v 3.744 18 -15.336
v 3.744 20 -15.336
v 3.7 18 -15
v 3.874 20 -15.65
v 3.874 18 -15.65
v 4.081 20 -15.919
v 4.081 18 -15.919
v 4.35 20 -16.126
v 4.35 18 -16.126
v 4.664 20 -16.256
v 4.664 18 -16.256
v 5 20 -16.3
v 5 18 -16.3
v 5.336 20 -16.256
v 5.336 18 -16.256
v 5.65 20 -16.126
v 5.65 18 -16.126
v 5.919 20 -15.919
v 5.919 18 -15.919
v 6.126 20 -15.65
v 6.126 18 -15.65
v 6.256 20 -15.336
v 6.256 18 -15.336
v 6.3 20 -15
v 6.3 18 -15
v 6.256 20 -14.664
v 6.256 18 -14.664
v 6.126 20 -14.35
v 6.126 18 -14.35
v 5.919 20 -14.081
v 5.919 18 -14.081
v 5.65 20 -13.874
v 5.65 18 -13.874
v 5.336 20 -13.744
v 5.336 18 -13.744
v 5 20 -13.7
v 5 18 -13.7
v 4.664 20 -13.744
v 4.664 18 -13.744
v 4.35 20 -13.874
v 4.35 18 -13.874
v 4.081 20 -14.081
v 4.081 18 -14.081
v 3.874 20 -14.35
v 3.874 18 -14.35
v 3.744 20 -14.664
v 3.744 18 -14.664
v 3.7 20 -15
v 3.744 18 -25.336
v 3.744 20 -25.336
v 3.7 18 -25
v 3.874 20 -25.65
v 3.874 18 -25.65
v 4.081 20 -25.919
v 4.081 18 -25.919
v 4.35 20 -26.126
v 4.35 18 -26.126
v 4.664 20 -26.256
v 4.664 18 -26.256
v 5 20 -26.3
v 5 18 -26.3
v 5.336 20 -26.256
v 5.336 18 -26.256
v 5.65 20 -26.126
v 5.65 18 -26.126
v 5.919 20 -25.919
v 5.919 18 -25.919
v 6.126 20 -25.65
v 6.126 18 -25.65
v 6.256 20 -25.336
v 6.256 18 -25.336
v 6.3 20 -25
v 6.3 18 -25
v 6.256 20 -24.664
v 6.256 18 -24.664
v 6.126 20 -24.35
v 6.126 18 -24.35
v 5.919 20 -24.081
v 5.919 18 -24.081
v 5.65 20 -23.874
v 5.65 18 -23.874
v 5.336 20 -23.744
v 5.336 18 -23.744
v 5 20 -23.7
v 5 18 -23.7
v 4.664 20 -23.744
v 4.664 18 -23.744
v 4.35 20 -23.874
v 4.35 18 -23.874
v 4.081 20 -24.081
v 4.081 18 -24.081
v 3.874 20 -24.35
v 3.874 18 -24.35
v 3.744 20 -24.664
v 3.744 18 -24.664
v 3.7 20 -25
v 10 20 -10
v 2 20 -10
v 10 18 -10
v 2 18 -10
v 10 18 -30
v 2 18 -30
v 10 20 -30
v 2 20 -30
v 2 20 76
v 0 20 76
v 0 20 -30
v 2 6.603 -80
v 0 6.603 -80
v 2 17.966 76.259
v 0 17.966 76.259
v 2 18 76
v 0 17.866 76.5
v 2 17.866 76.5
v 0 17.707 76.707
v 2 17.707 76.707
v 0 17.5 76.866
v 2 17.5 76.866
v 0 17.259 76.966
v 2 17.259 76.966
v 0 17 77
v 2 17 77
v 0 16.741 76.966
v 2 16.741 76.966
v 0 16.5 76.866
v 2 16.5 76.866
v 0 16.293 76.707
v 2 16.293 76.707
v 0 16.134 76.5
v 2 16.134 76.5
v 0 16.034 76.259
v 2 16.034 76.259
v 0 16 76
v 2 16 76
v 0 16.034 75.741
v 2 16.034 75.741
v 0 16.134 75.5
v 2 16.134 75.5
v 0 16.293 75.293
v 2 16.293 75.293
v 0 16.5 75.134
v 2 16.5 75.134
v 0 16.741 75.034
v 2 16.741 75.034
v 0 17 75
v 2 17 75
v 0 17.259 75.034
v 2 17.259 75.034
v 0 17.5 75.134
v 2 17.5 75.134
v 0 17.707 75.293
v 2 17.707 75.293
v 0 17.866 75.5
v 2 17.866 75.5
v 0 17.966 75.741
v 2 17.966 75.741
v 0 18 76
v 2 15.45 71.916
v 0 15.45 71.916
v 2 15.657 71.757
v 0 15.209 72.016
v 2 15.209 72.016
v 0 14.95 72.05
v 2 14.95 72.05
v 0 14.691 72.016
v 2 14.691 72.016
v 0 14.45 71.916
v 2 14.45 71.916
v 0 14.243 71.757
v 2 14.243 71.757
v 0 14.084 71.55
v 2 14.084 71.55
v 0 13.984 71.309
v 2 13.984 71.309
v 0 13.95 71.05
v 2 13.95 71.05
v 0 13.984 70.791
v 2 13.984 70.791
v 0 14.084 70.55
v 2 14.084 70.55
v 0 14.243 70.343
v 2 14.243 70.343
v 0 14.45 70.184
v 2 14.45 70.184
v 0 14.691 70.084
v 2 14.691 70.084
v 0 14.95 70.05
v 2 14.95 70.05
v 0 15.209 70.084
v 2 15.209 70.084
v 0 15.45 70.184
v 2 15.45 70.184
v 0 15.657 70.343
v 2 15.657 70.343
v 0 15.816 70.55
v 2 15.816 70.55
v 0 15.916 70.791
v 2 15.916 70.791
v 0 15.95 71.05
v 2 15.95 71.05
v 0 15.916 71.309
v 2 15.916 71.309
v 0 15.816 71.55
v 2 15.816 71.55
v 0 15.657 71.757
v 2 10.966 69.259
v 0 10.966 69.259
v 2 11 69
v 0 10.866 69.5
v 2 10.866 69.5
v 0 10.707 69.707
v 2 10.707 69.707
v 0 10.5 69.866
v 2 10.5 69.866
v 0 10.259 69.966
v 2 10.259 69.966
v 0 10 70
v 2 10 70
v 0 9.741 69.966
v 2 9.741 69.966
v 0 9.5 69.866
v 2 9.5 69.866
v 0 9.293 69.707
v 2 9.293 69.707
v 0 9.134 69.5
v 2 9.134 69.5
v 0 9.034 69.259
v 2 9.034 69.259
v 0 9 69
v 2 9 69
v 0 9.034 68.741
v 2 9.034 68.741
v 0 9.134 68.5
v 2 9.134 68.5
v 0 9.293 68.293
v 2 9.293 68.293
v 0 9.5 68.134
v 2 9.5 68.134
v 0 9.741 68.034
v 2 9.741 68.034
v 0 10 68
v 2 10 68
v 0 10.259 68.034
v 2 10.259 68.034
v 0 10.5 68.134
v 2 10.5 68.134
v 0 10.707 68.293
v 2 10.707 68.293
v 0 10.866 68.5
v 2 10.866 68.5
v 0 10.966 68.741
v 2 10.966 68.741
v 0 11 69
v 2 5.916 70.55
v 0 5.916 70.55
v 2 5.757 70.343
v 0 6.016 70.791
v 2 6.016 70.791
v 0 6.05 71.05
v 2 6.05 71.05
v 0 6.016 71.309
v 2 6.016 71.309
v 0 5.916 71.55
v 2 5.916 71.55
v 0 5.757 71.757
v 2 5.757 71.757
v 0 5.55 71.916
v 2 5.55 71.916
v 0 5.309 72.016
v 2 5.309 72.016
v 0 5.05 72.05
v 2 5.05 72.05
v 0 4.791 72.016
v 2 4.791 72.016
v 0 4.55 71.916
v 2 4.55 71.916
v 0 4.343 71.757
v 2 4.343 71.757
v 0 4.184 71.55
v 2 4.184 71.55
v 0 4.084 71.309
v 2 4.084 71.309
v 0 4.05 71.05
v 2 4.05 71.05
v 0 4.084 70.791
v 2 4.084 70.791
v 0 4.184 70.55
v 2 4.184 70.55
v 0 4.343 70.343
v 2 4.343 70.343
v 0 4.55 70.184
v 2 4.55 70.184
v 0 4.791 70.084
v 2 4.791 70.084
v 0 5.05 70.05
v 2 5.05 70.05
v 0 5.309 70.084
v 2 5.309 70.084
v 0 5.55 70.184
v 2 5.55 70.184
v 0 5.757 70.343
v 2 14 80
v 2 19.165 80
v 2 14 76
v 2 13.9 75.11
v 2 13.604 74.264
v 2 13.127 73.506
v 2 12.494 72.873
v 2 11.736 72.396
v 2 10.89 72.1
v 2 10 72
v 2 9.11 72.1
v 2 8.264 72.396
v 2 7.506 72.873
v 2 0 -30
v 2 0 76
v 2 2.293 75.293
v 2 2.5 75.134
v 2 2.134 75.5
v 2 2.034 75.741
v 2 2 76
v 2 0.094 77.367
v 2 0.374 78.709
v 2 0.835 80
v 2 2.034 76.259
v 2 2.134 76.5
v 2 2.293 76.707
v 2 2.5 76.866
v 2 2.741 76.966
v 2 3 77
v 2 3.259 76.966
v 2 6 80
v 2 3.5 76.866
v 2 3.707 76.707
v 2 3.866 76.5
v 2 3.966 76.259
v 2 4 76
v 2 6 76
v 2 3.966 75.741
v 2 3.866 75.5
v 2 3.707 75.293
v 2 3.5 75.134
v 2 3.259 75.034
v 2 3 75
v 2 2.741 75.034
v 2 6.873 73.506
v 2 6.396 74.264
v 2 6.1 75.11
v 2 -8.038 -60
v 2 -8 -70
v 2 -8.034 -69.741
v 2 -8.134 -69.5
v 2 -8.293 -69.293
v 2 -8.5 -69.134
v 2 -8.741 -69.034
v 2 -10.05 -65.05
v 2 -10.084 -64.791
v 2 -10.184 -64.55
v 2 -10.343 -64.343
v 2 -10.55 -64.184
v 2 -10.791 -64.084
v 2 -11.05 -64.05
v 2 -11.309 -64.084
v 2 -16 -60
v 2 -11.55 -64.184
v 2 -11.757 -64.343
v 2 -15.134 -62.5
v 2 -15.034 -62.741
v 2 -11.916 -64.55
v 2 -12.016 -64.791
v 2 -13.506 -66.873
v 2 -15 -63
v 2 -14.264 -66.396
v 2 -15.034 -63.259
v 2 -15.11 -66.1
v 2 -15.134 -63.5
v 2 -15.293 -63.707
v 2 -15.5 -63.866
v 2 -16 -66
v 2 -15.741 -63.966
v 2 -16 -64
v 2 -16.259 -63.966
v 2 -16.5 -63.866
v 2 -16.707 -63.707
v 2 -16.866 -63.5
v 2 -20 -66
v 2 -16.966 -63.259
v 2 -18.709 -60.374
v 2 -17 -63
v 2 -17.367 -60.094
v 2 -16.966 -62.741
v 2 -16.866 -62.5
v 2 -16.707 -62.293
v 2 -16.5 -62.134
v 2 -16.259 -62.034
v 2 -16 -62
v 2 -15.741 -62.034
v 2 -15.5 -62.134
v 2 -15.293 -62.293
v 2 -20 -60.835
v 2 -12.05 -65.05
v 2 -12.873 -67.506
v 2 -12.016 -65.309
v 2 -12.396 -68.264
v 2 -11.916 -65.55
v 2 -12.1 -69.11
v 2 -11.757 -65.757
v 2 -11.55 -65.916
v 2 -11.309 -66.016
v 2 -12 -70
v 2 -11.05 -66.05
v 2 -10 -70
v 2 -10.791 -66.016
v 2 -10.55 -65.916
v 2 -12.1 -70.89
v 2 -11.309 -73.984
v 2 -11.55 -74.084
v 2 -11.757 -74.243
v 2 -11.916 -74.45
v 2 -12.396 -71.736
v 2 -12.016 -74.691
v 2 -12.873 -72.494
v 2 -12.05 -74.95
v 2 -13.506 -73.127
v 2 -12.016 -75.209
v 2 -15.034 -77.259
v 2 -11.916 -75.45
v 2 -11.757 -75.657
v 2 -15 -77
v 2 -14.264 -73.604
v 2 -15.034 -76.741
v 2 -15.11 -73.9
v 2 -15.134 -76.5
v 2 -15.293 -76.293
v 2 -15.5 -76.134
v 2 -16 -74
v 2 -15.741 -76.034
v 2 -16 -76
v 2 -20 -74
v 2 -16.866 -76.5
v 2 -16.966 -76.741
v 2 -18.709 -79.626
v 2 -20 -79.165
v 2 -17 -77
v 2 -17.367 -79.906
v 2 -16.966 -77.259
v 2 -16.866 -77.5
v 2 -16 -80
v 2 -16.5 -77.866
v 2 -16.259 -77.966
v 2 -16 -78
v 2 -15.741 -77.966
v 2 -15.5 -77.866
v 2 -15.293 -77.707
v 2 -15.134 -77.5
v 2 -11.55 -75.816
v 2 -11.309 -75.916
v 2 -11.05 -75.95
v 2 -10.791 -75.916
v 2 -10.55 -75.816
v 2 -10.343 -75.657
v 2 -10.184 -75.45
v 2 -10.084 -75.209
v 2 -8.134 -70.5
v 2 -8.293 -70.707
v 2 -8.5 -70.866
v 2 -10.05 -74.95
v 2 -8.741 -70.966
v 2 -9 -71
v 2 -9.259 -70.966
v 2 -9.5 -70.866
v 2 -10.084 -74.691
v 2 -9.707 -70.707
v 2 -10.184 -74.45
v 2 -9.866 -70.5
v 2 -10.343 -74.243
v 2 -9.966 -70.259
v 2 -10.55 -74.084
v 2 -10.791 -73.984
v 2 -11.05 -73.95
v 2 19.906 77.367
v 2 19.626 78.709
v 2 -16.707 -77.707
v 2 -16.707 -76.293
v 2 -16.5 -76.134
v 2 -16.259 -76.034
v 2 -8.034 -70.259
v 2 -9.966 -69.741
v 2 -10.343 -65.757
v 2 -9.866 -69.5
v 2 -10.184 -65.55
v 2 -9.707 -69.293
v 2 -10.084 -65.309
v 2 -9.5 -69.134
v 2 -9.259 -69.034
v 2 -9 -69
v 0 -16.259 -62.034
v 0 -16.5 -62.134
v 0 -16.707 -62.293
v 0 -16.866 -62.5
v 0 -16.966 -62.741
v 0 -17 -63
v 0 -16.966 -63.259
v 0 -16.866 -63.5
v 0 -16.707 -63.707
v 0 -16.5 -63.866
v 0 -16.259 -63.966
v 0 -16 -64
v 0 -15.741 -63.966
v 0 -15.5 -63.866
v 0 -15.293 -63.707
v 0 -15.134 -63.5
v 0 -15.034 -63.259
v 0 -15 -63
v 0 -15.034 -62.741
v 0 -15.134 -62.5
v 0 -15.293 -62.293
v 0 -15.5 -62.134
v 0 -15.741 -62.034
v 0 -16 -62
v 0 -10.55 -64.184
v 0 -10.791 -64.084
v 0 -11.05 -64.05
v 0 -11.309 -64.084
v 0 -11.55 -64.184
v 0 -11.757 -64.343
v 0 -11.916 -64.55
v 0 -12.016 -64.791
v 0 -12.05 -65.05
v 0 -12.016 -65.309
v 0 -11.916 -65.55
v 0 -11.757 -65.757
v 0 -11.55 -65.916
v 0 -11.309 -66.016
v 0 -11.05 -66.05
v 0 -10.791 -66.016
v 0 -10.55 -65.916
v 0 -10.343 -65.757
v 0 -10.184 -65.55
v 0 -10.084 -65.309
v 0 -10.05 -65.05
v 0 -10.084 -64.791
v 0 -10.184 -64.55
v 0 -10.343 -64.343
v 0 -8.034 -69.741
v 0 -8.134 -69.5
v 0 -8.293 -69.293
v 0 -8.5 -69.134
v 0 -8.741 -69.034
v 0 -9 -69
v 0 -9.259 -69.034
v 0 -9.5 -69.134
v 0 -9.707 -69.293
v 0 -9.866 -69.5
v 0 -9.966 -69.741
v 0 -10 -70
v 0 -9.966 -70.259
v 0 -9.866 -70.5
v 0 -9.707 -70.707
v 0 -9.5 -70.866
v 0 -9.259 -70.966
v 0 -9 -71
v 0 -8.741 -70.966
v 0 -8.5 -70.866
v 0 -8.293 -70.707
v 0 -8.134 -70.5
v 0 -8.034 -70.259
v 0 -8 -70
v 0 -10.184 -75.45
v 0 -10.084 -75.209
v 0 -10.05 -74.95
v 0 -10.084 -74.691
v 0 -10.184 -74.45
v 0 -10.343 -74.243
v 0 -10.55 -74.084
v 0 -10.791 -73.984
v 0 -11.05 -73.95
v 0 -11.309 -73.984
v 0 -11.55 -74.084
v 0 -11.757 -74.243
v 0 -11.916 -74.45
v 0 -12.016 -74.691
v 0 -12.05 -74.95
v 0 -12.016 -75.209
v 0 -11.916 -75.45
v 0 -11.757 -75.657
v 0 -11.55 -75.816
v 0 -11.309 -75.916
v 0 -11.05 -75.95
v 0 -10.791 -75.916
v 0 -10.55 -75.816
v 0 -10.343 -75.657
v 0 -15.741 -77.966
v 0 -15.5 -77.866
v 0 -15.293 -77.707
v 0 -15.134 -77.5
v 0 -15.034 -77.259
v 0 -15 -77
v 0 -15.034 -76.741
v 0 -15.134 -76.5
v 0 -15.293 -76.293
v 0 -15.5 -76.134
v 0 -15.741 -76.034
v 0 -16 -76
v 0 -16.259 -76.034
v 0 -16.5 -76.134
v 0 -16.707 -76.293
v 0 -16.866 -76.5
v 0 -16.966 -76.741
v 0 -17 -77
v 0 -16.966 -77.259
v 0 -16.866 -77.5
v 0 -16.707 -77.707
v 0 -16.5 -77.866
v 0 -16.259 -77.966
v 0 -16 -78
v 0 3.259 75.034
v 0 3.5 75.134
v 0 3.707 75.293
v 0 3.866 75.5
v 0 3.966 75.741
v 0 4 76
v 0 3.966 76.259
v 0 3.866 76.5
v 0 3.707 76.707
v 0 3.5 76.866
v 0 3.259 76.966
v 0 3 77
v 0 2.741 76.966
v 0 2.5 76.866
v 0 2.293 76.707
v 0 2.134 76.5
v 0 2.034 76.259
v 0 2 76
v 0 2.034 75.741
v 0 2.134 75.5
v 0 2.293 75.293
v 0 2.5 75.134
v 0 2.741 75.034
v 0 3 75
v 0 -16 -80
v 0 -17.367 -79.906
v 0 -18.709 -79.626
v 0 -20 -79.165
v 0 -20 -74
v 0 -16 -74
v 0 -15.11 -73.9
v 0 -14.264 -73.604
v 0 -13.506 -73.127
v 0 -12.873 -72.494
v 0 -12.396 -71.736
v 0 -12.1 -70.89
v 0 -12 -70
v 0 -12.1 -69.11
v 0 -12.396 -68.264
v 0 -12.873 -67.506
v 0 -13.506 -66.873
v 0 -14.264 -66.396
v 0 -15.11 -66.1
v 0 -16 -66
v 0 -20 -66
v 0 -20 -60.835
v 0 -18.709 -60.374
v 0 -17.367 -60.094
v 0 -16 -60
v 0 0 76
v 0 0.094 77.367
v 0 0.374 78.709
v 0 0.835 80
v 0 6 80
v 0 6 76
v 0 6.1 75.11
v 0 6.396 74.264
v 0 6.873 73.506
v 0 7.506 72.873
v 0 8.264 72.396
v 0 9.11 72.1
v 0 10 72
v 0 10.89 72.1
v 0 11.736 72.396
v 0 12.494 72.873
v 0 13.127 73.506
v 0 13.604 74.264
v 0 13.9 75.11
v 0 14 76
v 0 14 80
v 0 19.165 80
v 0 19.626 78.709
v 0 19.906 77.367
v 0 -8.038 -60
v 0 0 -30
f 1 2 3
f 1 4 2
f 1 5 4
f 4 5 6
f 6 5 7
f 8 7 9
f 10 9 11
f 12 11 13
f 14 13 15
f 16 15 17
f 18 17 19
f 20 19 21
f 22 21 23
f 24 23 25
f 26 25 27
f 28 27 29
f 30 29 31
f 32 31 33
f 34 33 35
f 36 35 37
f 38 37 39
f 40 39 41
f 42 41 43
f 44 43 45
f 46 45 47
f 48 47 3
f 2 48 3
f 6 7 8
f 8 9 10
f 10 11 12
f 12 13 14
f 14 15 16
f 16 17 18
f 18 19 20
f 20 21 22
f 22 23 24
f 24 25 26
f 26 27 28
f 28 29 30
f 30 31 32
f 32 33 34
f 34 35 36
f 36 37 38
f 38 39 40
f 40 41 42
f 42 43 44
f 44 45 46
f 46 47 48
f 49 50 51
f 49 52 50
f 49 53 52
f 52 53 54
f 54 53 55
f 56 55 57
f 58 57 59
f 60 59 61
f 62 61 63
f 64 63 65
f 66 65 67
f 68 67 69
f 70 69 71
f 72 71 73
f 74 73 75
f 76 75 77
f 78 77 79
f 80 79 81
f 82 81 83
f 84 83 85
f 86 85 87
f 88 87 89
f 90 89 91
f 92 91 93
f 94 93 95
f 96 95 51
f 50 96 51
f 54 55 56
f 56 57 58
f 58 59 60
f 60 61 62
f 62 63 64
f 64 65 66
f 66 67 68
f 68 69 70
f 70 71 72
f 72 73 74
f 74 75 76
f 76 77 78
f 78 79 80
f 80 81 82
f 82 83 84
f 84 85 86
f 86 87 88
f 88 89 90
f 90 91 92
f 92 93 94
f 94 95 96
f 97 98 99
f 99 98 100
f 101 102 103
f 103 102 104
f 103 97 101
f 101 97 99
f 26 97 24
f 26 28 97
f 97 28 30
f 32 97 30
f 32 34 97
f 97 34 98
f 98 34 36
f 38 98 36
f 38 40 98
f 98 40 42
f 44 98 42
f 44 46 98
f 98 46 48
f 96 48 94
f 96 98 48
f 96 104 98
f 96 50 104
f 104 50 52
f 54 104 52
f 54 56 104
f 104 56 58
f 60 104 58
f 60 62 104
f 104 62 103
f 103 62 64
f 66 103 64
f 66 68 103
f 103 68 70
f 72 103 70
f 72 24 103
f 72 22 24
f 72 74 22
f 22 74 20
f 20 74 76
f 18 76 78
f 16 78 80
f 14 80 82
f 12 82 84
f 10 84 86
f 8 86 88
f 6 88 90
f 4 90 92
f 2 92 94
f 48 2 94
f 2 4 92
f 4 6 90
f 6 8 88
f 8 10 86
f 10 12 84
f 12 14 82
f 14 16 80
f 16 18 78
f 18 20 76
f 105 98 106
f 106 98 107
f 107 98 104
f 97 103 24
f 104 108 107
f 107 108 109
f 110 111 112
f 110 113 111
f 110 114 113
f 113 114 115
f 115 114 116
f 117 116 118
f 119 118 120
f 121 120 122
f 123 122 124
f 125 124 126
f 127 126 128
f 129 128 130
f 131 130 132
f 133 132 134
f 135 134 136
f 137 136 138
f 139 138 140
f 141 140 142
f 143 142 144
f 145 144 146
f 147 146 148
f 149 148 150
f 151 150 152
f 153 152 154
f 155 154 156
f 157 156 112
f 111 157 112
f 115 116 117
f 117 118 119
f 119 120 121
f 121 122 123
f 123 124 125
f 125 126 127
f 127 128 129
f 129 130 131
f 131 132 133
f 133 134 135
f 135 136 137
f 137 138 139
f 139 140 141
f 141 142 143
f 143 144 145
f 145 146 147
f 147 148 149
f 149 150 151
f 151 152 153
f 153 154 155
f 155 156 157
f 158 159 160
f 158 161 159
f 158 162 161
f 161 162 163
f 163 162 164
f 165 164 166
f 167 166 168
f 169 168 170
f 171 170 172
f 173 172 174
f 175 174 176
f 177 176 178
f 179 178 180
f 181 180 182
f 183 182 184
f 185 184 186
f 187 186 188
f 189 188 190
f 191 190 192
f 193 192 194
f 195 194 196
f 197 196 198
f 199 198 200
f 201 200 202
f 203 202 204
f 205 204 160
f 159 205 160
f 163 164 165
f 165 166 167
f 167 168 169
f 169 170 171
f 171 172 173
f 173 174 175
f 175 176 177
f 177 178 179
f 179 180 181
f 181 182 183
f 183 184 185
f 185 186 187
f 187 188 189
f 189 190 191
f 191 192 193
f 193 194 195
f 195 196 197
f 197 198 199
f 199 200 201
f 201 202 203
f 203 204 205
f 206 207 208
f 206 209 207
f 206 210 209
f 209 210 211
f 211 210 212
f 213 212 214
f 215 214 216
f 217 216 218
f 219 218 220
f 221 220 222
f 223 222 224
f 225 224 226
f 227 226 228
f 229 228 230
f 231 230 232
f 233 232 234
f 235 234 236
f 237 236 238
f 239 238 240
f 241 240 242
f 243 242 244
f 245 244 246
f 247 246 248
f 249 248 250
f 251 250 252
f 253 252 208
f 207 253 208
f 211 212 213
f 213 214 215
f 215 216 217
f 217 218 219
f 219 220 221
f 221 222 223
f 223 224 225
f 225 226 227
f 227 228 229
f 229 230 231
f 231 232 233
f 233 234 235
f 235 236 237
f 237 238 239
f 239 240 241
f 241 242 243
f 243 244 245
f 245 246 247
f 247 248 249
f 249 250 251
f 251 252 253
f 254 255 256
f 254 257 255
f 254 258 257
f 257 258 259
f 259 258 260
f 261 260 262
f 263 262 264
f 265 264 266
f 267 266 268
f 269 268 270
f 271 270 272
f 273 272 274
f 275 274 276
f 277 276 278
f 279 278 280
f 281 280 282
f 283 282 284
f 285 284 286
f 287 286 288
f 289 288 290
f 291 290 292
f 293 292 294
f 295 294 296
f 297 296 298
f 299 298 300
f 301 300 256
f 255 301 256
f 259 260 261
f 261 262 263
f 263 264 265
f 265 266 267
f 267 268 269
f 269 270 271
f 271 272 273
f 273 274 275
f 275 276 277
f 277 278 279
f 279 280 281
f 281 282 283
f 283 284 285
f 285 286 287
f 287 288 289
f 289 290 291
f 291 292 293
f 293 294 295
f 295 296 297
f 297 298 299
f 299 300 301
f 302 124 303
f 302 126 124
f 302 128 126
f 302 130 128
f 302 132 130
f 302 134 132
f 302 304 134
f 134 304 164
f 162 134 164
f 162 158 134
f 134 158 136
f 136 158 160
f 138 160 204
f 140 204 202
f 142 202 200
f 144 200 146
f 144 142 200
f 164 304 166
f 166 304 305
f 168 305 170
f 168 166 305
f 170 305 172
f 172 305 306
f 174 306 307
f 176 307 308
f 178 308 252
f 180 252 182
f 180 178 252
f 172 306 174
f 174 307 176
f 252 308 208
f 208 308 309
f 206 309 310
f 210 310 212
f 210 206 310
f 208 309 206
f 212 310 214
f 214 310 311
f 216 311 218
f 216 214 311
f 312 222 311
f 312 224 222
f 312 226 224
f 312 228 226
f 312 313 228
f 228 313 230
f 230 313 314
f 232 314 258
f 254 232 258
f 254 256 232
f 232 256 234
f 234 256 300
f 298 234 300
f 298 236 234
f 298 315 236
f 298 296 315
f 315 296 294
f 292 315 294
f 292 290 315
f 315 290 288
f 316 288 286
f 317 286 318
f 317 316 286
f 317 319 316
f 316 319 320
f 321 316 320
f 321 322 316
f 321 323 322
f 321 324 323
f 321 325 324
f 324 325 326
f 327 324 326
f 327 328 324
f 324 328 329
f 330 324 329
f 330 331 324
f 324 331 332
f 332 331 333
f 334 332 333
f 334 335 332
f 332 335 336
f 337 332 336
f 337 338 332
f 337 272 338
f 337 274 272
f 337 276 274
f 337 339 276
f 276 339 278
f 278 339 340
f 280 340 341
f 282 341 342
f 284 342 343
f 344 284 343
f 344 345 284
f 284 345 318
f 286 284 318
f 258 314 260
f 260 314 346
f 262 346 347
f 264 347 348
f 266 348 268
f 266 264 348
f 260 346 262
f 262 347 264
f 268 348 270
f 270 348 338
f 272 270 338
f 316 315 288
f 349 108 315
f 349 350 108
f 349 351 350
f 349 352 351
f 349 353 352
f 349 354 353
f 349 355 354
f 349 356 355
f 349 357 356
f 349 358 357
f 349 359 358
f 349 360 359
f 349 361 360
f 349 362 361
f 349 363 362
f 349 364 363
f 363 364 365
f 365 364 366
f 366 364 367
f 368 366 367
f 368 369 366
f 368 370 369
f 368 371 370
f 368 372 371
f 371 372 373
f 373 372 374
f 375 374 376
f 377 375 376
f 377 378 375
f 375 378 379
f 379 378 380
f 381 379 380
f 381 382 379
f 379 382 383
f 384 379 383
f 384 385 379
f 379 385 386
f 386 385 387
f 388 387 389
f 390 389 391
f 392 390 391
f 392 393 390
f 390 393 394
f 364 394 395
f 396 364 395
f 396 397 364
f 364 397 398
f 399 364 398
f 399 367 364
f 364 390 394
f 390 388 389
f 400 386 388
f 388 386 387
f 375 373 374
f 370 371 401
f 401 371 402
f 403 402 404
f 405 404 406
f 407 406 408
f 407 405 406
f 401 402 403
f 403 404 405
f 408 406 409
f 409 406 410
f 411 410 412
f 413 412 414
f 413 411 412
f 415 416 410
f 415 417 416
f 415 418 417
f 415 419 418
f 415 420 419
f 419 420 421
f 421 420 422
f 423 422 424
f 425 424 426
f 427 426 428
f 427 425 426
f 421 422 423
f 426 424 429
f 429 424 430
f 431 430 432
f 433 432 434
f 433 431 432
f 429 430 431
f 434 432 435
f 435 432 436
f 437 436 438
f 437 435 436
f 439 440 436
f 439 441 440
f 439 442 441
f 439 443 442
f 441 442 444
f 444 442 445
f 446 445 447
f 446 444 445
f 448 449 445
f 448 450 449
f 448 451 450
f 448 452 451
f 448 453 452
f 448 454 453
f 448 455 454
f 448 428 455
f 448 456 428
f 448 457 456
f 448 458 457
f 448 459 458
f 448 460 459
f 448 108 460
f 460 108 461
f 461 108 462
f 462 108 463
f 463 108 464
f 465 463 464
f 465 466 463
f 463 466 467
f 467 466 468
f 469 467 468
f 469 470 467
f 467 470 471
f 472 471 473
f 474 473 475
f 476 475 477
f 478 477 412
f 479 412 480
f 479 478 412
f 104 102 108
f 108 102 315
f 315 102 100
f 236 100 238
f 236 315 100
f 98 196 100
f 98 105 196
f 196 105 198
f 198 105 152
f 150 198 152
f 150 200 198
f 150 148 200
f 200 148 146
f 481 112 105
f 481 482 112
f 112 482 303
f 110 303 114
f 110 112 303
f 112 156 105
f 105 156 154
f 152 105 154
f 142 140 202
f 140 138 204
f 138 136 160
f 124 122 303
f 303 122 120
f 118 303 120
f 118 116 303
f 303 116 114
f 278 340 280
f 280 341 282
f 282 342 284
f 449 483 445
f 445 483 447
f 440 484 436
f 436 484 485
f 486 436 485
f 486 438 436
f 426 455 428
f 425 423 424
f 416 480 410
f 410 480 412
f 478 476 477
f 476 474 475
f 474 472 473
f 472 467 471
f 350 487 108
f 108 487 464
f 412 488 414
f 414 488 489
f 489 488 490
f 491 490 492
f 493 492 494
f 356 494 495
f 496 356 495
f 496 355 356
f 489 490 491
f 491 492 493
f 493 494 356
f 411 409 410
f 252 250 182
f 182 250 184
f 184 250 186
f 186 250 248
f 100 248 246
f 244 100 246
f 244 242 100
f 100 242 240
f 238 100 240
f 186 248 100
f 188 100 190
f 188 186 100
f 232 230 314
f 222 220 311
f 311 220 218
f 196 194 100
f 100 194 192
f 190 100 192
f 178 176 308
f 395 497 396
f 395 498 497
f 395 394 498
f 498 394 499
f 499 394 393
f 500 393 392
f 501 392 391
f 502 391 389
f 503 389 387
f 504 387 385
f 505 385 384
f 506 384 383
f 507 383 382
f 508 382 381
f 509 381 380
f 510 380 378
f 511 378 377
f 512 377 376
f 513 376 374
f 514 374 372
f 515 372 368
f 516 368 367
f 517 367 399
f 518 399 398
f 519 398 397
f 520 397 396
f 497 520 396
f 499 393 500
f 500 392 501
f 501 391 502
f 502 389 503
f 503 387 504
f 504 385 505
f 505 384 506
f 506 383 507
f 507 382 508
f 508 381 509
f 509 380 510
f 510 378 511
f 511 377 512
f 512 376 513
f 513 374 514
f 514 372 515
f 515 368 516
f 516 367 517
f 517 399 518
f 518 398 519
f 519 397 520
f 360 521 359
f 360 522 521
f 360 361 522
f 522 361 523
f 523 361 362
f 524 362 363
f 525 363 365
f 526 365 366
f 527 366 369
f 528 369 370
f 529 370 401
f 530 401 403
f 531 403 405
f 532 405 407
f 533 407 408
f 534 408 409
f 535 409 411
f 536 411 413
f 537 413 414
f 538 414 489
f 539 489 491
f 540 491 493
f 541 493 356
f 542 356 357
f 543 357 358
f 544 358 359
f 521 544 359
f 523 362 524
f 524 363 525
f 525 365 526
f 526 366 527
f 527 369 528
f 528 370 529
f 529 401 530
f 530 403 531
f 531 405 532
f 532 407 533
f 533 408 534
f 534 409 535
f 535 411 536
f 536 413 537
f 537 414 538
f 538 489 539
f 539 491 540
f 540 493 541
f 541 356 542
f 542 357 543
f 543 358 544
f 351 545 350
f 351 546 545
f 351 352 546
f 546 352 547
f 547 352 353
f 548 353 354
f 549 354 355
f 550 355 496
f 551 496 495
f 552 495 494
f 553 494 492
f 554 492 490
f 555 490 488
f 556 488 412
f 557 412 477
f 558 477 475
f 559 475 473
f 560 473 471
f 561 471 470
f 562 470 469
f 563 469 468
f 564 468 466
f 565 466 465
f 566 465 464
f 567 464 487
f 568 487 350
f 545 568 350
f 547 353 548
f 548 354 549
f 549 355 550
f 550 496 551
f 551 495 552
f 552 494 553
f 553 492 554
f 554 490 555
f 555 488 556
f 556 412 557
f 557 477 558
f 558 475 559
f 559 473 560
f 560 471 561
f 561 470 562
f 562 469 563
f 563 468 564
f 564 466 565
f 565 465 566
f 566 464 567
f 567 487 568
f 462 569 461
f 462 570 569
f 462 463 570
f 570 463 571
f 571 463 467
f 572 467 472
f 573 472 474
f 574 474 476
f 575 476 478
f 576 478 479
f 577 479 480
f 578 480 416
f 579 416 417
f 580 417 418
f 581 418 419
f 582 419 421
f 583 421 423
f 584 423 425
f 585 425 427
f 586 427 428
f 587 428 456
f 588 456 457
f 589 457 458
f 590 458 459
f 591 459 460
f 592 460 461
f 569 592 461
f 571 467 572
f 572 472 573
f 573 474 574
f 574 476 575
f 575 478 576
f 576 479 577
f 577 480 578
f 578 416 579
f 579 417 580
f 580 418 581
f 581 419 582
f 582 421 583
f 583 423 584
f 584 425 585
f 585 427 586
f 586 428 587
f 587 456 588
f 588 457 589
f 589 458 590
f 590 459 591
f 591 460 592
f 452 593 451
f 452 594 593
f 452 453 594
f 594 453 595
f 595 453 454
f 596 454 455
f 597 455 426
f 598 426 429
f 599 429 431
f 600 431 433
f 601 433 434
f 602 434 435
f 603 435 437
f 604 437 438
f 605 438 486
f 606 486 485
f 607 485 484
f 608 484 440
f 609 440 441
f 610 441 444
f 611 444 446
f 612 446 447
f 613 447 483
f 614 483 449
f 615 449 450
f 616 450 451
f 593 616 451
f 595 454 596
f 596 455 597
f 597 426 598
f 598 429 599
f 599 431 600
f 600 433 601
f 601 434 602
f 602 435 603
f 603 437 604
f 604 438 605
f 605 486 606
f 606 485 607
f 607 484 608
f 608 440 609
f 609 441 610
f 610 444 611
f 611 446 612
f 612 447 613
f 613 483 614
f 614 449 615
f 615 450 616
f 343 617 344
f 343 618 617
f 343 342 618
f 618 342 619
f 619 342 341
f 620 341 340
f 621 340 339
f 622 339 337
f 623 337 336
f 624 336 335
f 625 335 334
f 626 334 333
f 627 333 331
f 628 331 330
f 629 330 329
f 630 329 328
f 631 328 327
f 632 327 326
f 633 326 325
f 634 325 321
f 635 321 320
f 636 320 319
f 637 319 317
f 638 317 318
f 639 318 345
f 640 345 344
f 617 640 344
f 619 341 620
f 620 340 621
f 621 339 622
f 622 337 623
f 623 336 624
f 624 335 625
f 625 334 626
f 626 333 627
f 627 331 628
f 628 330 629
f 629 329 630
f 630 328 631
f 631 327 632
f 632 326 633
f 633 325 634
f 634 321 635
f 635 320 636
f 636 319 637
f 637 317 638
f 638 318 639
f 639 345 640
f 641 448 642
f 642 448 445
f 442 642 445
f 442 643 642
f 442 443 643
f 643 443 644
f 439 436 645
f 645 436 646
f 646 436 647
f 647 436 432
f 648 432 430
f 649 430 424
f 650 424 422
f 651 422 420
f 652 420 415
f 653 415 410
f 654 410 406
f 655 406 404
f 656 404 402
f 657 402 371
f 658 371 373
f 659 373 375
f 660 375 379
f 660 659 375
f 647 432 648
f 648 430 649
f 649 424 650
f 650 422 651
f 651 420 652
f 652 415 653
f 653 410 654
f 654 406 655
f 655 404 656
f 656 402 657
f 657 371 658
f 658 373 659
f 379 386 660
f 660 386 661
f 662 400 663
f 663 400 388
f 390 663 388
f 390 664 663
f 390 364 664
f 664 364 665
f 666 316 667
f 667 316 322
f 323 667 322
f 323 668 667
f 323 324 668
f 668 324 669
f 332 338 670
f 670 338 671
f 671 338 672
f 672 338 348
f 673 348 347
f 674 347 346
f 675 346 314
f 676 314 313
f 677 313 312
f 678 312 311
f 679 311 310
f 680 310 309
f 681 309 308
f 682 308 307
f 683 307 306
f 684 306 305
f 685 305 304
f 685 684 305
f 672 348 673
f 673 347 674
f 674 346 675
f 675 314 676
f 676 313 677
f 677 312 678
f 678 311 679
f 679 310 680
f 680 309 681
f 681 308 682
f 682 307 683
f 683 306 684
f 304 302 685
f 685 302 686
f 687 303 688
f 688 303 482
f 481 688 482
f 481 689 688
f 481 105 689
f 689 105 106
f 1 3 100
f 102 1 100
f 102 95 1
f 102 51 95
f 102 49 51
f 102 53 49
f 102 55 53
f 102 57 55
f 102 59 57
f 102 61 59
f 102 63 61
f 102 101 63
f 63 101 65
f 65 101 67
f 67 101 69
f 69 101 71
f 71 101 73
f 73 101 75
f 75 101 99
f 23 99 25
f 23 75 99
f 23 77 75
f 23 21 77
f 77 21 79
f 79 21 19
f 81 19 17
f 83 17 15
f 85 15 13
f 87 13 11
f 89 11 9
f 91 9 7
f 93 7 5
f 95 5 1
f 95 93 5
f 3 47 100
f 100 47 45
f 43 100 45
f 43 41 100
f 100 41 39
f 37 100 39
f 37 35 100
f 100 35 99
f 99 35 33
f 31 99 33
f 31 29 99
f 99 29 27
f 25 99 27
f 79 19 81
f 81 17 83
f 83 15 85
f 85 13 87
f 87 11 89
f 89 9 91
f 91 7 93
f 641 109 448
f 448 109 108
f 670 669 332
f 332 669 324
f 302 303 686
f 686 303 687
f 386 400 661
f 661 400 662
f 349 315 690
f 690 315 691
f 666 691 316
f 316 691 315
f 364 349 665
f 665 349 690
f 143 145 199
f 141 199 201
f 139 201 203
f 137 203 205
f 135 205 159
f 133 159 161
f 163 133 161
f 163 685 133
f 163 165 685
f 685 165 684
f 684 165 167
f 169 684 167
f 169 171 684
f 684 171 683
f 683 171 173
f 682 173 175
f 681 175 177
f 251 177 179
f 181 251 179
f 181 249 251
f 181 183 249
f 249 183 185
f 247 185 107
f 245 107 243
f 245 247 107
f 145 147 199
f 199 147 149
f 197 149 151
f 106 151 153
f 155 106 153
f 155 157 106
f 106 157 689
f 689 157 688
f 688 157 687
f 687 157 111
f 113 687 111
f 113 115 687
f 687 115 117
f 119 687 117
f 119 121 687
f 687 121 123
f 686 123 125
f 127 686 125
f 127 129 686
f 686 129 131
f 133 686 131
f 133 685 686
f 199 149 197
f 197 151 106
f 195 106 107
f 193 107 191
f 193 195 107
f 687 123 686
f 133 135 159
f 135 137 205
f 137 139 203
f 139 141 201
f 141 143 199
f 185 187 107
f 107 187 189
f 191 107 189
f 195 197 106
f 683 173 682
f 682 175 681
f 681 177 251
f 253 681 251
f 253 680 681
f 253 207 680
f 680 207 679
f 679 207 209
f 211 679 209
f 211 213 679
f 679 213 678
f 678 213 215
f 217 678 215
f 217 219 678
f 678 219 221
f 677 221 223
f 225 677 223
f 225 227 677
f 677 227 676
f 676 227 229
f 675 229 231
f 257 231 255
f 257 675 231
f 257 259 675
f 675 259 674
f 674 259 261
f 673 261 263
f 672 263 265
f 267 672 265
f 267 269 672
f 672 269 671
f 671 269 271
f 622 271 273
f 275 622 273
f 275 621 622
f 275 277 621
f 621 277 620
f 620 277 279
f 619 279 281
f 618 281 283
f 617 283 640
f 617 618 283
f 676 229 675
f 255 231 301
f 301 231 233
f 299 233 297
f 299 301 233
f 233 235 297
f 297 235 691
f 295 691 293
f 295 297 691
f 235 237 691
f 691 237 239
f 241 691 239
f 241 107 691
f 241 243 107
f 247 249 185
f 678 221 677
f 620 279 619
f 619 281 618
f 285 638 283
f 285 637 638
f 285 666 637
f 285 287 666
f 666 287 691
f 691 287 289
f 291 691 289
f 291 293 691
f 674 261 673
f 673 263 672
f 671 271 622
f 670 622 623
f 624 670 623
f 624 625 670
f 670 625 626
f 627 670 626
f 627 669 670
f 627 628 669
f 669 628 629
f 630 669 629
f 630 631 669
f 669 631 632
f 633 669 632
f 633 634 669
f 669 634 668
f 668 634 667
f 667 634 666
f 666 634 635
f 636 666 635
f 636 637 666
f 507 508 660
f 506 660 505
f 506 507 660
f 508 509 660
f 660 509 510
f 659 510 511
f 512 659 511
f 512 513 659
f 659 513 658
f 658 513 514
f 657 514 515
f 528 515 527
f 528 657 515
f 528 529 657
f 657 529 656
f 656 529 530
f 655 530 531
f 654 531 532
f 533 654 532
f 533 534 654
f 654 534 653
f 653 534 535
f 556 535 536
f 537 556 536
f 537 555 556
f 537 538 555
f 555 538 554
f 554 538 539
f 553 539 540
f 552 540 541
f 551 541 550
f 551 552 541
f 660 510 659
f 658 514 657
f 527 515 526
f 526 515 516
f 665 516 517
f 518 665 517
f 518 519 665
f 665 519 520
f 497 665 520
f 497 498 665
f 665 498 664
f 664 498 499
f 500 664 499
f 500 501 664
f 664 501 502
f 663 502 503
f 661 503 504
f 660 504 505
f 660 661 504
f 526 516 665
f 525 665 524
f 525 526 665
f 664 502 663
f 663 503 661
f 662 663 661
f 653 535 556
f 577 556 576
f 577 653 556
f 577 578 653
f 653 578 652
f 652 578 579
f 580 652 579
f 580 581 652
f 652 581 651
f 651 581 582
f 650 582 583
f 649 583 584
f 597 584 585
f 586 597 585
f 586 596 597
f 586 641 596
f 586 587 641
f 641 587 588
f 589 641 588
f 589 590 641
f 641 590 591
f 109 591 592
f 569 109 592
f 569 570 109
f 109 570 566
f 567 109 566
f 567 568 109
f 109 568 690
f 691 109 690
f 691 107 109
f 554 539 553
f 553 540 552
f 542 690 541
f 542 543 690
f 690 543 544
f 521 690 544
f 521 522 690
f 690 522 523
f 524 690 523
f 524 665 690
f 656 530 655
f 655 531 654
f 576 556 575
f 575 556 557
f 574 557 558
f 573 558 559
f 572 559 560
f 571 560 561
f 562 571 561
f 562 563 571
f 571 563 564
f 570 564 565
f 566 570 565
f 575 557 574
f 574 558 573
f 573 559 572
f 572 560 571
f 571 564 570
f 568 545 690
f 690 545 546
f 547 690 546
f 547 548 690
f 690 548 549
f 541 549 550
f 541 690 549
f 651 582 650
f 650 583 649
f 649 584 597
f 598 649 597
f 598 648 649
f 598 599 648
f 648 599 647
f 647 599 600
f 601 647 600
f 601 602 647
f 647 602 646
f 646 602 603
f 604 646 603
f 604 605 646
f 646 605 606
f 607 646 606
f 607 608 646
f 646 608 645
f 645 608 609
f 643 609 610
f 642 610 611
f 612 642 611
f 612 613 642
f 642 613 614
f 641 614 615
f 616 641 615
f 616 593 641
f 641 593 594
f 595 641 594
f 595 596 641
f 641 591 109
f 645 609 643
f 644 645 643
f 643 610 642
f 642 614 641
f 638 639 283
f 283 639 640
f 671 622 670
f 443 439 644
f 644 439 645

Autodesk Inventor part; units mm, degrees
ref_plane "YZ Plane" through (0, 0, 0) normal (1, 0, 0) x (0, 1, 0)
ref_plane "XZ Plane" through (0, 0, 0) normal (0, 1, 0) x (-1, 0, 0)
ref_plane "XY Plane" through (0, 0, 0) normal (0, 0, 1) x (1, 0, 0)
sketch "スケッチ1" plane through (0, 0, 0) normal (1, 0, 0) x (0, 1, 0)
  line L0 (-20, 80) -> (20, 80)
  line L1 (20, 80) -> (20, -80)
  line L2 (20, -80) -> (-20, -80)
  line L3 (-20, -80) -> (-20, 80)
  point P0 (0, 0)
  dimension "d0" = 160
  dimension "d2" = 40
  dimension "d3" = 20
  dimension "d4" = 80
extrude "押し出し1" add sketch "スケッチ1" along normal blind 2
sketch "スケッチ2" plane through (2, 0, 0) normal (1, 0, 0) x (0, 0, -1)
  line L0 (80, -20) -> (80, 20) projected
  line L1 (80, 20) -> (-80, 20) projected
  line L2 (-80, 20) -> (80, 20)
  line L3 (80, 20) -> (80, 18)
  line L4 (80, 18) -> (-80, 18)
  line L5 (-80, 18) -> (-80, 20)
  point P0 (0, 0)
  dimension "d7" = 2
extrude "押し出し2" add sketch "スケッチ2" along normal blind 20
sketch "スケッチ3" plane through (0, 0, 0) normal (-1, 0, 0) x (0, 0, 1)
  line L0 (80, -20) -> (80, 20) projected
  line L1 (80, 20) -> (-80, 20) projected
  line L2 (-80, 20) -> (-80, -20) projected
  line L3 (-80, -20) -> (80, -20) projected
  line L4 (-60, -20) -> (-60, -8.0385)
  line L5 (-60, -8.0385) -> (-30, 0)
  line L6 (-30, 0) -> (80, 0)
  line L7 (80, 0) -> (80, 20)
  line L8 (-80, 6.6025) -> (-30, 20)
  point P0 (0, 0)
  dimension "d11" = 20
  dimension "d12" = 15
  dimension "d13" = 15
  dimension "d14" = 20
  dimension "d15" = 160
  dimension "d17" = 110
  dimension "d18" = 110
extrude "押し出し3" cut sketch "スケッチ3" against normal blind 20 contours L6 L5 L4 L3 L2 L8 L1 L0 keep common part
sketch "スケッチ6" plane through (0, 0, 0) normal (-1, 0, 0) x (0, 0, 1)
  line L0 (-60, -8.0385) -> (-60, -20) projected
  line L1 (-30, 0) -> (-60, -8.0385) projected
  line L2 (80, 0) -> (-30, 0) projected
  line L3 (80, 0) -> (80, 20) projected
  line L4 (80, 20) -> (-30, 20) projected
  line L5 (-80, 6.6025) -> (-30, 20) projected
  line L6 (-80, 6.6025) -> (-80, -20) projected
  line L7 (-80, -20) -> (-60, -20) projected
  arc A0 (-66, -16) -> (-74, -16) centre (-70, -16) ccw
  arc A1 (76, 14) -> (76, 6) centre (76, 10) ccw
  line L8 (-74, -16) -> (-74, -20)
  line L9 (-66, -16) -> (-66, -20)
  line L10 (76, 14) -> (80, 14)
  line L11 (76, 6) -> (80, 6)
  arc A2 (-60.8348, -20) -> (-60, -16) centre (-70, -16) ccw
  arc A3 (-80, -16) -> (-79.1652, -20) centre (-70, -16) ccw
  arc A4 (76, 0) -> (80, 0.8348) centre (76, 10) ccw
  arc A5 (80, 19.1652) -> (76, 20) centre (76, 10) ccw
  point P0 (0, 0)
  dimension "d37" = 8
  dimension "d39" = 8
  dimension "d40" = 4
  dimension "d41" = 4
  dimension "d42" = 10
  dimension "d43" = 10
extrude "押し出し6" cut sketch "スケッチ6" against normal blind 11 contours L0 A2 L7 L9 A0 L8 A3 L6 L5 L4 A5 L3 L10 A1 L11 A4 L2 L1 keep common part
sketch "スケッチ7" plane through (0, 0, 0) normal (-1, 0, 0) x (0, 0, 1)
  arc A0 (80, 19.1652) -> (76, 20) centre (76, 10) ccw projected
  arc A1 (-80, -16) -> (-79.1652, -20) centre (-70, -16) ccw projected
  line L0 (-79.1652, -20) -> (-74, -20) projected
  line L1 (80, 0.8348) -> (80, 6) projected
  circle A2 centre (76, 3) radius 1
  circle A3 centre (-77, -16) radius 1
  point P0 (0, 0)
  dimension "d46" = 2
  dimension "d48" = 7
  dimension "d49" = 4
  dimension "d50" = 4
  dimension "d51" = 7
hole "穴1" at (0, -16, -77) at (0, 3, 76) direction (1, 0, 0) diameter 2 end through all
pattern_circular "円形状パターン1" count 5 over 180 about axis through (0, -16, -70) along (1, 0, 0) of "穴1"
pattern_circular "円形状パターン2" count 5 over 180 about axis through (0, 10, 76) along (1, 0, 0) of "穴1"
sketch "スケッチ4" plane through (0, 20, -30) normal (0, 1, 0) x (1, 0, 0)
  line L0 (0, 0) -> (20, 0) projected
  line L1 (0, -110) -> (0, 0) projected
  line L2 (20, 0) -> (2, 0)
  line L3 (2, 0) -> (2, 8)
  line L4 (2, 8) -> (20, 8)
  line L5 (20, 8) -> (20, 0)
  line L6 (20, -110) -> (11, -110)
  line L7 (11, -110) -> (11, 0)
  line L8 (11, 0) -> (20, 0)
  line L9 (20, 0) -> (20, -110)
  line L10 (11, -110) -> (2, -110)
  line L11 (2, -110) -> (2, -20)
  line L12 (2, -20) -> (11, -20)
  line L13 (11, -20) -> (11, -110)
  line L14 (11, 0) -> (10, 0)
  line L15 (10, 0) -> (10, -20)
  line L16 (10, -20) -> (11, -20)
  line L17 (11, -20) -> (11, 0)
  point P0 (0, -30)
  dimension "d21" = 18
  dimension "d23" = 2
  dimension "d24" = 20
  dimension "d25" = 8
  dimension "d65" = 1
extrude "押し出し7" cut sketch "スケッチ4" against normal blind 2
sketch "スケッチ8" plane through (0, 20, 76) normal (0, 1, 0) x (1, 0, 0)
  line L0 (10, 86) -> (10, 106) projected
  line L1 (2, 106) -> (10, 106) projected
  circle A0 centre (5, 101) radius 1.3
  circle A1 centre (5, 91) radius 1.3
  point P0 (0, 76)
  dimension "d68" = 10
  dimension "d70" = 5
  dimension "d71" = 5
  dimension "d72" = 5
  dimension "d73" = 2.6
hole "穴2" at (5, 20, -15) at (5, 20, -25) direction (0, -1, 0) diameter 2.6 end through all
thread "ねじ3" size "M2.6x0.45" class "6H" standard "ANSI Metric M Profile" full length
thread "ねじ4" size "M2.6x0.45" class "6H" standard "ANSI Metric M Profile" full length
properties part number "09" material "アルミニウム 6061"
